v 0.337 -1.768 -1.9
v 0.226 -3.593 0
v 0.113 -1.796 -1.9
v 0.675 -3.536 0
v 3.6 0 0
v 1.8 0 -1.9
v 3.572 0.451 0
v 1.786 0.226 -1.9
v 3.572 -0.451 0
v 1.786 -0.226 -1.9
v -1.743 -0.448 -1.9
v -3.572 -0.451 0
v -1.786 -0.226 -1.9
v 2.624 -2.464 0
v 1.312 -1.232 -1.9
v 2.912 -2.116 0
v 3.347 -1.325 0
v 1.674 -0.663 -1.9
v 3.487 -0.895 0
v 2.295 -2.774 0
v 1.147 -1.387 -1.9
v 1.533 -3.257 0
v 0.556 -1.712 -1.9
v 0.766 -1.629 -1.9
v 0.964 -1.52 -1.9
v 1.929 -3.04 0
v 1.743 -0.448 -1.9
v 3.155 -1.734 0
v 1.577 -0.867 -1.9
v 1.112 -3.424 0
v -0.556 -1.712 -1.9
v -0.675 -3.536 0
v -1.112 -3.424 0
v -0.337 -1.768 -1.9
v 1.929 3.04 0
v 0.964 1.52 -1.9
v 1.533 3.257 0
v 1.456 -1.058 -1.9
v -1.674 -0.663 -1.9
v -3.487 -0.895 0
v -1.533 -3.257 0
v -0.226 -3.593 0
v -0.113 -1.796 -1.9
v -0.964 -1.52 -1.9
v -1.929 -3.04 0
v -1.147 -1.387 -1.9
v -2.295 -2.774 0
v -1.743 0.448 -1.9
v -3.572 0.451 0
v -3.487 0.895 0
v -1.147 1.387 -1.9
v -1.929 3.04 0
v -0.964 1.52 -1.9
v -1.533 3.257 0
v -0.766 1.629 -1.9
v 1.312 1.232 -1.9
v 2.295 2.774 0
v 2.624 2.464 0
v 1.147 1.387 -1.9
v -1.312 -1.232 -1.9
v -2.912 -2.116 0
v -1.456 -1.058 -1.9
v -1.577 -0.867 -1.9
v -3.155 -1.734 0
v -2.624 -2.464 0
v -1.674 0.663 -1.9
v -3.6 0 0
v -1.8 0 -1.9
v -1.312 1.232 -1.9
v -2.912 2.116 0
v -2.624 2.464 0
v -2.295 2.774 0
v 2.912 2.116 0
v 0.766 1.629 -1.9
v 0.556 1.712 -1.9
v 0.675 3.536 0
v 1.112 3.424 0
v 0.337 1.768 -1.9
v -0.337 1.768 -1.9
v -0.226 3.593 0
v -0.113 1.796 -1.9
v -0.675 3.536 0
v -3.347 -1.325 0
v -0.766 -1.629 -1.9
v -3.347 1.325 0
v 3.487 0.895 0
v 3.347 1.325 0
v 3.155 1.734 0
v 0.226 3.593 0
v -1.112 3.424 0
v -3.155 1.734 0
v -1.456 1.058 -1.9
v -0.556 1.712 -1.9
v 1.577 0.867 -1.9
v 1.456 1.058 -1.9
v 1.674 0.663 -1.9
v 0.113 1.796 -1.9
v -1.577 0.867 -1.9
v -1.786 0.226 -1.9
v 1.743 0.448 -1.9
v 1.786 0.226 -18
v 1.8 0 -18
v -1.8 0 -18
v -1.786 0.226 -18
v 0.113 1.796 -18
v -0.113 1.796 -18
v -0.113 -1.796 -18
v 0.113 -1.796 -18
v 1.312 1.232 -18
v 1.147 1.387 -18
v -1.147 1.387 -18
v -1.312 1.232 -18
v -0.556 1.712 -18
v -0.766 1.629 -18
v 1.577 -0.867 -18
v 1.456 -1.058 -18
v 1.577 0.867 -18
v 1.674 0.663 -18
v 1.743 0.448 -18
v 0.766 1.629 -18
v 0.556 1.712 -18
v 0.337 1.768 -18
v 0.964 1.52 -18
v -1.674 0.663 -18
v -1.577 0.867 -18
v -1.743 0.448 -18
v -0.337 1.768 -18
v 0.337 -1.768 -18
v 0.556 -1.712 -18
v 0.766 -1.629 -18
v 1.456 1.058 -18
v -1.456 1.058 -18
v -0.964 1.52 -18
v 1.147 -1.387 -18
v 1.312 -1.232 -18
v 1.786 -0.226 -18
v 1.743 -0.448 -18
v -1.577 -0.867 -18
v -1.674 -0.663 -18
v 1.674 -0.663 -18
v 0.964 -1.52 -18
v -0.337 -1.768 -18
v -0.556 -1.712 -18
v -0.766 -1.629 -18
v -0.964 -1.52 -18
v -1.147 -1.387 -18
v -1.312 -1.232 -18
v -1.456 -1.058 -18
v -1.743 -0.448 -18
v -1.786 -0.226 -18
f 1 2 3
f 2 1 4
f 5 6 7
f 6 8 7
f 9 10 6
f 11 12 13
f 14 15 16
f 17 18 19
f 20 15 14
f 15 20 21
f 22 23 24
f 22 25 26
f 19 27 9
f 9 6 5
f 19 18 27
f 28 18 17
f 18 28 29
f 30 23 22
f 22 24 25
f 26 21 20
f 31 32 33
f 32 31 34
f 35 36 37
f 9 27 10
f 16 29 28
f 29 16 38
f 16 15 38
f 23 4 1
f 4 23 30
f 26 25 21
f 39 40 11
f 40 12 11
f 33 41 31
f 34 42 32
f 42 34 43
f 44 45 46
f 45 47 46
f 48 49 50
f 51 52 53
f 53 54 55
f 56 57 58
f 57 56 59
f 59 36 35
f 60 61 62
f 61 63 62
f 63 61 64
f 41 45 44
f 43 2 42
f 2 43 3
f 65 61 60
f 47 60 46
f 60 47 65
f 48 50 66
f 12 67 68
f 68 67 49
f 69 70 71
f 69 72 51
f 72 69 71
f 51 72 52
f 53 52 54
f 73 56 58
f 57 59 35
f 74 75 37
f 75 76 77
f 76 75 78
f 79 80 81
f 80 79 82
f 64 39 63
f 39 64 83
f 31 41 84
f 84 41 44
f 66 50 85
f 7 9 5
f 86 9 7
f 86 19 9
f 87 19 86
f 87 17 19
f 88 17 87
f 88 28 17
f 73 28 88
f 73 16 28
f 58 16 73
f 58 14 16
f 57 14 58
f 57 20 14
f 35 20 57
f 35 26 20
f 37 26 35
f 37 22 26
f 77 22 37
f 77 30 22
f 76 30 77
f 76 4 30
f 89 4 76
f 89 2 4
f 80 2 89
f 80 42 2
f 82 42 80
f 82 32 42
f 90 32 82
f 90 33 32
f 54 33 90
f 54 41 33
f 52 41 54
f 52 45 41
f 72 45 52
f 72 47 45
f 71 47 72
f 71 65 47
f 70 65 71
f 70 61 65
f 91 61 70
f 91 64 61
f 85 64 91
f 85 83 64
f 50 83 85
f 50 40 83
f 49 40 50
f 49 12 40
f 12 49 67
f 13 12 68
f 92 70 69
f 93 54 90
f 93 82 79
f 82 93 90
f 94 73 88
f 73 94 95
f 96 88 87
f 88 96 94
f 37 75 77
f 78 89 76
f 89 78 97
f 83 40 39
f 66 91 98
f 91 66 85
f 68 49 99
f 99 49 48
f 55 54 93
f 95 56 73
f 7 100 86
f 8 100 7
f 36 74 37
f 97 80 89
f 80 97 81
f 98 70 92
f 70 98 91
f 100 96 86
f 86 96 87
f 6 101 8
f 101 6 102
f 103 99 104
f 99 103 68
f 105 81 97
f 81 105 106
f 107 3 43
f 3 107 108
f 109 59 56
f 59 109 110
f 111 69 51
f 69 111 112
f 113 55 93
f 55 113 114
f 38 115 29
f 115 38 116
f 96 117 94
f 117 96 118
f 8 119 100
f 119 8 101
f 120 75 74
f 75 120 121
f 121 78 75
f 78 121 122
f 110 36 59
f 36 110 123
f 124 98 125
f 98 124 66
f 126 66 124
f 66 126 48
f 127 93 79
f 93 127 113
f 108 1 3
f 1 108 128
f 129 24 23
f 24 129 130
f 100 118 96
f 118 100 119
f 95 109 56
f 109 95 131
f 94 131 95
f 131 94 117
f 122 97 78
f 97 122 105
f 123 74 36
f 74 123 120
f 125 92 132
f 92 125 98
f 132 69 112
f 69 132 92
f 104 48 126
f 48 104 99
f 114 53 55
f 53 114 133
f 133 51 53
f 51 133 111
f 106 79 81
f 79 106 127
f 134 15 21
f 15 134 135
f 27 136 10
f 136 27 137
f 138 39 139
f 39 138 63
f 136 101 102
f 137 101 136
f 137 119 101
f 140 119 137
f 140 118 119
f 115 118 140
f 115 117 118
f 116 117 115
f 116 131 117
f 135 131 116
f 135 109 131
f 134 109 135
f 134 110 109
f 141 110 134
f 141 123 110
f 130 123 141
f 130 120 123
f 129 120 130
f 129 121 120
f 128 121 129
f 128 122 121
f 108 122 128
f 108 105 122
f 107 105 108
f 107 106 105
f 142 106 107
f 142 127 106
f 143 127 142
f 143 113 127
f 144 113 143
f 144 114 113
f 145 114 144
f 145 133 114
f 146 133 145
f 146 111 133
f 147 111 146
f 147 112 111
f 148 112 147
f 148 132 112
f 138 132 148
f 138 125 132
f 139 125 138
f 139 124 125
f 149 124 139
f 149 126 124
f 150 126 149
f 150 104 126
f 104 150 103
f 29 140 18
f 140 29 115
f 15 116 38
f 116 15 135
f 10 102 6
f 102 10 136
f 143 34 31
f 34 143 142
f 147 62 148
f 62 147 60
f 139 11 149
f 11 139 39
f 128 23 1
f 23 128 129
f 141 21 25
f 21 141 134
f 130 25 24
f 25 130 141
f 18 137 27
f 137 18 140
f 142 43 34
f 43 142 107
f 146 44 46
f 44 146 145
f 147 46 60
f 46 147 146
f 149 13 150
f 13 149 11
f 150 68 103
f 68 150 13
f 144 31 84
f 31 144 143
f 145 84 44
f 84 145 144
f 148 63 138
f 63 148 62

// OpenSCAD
$fn = 50;


difference() {
	union() {
		translate(v = [0, 0, -1.9000000000]) {
			rotate(a = [0, 0, 0]) {
				cylinder(h = 1.9000000000, r1 = 1.8000000000, r2 = 3.6000000000);
			}
		}
		translate(v = [0, 0, -18]) {
			rotate(a = [0, 0, 0]) {
				cylinder(h = 18, r = 1.8000000000);
			}
		}
	}
	union();
}
